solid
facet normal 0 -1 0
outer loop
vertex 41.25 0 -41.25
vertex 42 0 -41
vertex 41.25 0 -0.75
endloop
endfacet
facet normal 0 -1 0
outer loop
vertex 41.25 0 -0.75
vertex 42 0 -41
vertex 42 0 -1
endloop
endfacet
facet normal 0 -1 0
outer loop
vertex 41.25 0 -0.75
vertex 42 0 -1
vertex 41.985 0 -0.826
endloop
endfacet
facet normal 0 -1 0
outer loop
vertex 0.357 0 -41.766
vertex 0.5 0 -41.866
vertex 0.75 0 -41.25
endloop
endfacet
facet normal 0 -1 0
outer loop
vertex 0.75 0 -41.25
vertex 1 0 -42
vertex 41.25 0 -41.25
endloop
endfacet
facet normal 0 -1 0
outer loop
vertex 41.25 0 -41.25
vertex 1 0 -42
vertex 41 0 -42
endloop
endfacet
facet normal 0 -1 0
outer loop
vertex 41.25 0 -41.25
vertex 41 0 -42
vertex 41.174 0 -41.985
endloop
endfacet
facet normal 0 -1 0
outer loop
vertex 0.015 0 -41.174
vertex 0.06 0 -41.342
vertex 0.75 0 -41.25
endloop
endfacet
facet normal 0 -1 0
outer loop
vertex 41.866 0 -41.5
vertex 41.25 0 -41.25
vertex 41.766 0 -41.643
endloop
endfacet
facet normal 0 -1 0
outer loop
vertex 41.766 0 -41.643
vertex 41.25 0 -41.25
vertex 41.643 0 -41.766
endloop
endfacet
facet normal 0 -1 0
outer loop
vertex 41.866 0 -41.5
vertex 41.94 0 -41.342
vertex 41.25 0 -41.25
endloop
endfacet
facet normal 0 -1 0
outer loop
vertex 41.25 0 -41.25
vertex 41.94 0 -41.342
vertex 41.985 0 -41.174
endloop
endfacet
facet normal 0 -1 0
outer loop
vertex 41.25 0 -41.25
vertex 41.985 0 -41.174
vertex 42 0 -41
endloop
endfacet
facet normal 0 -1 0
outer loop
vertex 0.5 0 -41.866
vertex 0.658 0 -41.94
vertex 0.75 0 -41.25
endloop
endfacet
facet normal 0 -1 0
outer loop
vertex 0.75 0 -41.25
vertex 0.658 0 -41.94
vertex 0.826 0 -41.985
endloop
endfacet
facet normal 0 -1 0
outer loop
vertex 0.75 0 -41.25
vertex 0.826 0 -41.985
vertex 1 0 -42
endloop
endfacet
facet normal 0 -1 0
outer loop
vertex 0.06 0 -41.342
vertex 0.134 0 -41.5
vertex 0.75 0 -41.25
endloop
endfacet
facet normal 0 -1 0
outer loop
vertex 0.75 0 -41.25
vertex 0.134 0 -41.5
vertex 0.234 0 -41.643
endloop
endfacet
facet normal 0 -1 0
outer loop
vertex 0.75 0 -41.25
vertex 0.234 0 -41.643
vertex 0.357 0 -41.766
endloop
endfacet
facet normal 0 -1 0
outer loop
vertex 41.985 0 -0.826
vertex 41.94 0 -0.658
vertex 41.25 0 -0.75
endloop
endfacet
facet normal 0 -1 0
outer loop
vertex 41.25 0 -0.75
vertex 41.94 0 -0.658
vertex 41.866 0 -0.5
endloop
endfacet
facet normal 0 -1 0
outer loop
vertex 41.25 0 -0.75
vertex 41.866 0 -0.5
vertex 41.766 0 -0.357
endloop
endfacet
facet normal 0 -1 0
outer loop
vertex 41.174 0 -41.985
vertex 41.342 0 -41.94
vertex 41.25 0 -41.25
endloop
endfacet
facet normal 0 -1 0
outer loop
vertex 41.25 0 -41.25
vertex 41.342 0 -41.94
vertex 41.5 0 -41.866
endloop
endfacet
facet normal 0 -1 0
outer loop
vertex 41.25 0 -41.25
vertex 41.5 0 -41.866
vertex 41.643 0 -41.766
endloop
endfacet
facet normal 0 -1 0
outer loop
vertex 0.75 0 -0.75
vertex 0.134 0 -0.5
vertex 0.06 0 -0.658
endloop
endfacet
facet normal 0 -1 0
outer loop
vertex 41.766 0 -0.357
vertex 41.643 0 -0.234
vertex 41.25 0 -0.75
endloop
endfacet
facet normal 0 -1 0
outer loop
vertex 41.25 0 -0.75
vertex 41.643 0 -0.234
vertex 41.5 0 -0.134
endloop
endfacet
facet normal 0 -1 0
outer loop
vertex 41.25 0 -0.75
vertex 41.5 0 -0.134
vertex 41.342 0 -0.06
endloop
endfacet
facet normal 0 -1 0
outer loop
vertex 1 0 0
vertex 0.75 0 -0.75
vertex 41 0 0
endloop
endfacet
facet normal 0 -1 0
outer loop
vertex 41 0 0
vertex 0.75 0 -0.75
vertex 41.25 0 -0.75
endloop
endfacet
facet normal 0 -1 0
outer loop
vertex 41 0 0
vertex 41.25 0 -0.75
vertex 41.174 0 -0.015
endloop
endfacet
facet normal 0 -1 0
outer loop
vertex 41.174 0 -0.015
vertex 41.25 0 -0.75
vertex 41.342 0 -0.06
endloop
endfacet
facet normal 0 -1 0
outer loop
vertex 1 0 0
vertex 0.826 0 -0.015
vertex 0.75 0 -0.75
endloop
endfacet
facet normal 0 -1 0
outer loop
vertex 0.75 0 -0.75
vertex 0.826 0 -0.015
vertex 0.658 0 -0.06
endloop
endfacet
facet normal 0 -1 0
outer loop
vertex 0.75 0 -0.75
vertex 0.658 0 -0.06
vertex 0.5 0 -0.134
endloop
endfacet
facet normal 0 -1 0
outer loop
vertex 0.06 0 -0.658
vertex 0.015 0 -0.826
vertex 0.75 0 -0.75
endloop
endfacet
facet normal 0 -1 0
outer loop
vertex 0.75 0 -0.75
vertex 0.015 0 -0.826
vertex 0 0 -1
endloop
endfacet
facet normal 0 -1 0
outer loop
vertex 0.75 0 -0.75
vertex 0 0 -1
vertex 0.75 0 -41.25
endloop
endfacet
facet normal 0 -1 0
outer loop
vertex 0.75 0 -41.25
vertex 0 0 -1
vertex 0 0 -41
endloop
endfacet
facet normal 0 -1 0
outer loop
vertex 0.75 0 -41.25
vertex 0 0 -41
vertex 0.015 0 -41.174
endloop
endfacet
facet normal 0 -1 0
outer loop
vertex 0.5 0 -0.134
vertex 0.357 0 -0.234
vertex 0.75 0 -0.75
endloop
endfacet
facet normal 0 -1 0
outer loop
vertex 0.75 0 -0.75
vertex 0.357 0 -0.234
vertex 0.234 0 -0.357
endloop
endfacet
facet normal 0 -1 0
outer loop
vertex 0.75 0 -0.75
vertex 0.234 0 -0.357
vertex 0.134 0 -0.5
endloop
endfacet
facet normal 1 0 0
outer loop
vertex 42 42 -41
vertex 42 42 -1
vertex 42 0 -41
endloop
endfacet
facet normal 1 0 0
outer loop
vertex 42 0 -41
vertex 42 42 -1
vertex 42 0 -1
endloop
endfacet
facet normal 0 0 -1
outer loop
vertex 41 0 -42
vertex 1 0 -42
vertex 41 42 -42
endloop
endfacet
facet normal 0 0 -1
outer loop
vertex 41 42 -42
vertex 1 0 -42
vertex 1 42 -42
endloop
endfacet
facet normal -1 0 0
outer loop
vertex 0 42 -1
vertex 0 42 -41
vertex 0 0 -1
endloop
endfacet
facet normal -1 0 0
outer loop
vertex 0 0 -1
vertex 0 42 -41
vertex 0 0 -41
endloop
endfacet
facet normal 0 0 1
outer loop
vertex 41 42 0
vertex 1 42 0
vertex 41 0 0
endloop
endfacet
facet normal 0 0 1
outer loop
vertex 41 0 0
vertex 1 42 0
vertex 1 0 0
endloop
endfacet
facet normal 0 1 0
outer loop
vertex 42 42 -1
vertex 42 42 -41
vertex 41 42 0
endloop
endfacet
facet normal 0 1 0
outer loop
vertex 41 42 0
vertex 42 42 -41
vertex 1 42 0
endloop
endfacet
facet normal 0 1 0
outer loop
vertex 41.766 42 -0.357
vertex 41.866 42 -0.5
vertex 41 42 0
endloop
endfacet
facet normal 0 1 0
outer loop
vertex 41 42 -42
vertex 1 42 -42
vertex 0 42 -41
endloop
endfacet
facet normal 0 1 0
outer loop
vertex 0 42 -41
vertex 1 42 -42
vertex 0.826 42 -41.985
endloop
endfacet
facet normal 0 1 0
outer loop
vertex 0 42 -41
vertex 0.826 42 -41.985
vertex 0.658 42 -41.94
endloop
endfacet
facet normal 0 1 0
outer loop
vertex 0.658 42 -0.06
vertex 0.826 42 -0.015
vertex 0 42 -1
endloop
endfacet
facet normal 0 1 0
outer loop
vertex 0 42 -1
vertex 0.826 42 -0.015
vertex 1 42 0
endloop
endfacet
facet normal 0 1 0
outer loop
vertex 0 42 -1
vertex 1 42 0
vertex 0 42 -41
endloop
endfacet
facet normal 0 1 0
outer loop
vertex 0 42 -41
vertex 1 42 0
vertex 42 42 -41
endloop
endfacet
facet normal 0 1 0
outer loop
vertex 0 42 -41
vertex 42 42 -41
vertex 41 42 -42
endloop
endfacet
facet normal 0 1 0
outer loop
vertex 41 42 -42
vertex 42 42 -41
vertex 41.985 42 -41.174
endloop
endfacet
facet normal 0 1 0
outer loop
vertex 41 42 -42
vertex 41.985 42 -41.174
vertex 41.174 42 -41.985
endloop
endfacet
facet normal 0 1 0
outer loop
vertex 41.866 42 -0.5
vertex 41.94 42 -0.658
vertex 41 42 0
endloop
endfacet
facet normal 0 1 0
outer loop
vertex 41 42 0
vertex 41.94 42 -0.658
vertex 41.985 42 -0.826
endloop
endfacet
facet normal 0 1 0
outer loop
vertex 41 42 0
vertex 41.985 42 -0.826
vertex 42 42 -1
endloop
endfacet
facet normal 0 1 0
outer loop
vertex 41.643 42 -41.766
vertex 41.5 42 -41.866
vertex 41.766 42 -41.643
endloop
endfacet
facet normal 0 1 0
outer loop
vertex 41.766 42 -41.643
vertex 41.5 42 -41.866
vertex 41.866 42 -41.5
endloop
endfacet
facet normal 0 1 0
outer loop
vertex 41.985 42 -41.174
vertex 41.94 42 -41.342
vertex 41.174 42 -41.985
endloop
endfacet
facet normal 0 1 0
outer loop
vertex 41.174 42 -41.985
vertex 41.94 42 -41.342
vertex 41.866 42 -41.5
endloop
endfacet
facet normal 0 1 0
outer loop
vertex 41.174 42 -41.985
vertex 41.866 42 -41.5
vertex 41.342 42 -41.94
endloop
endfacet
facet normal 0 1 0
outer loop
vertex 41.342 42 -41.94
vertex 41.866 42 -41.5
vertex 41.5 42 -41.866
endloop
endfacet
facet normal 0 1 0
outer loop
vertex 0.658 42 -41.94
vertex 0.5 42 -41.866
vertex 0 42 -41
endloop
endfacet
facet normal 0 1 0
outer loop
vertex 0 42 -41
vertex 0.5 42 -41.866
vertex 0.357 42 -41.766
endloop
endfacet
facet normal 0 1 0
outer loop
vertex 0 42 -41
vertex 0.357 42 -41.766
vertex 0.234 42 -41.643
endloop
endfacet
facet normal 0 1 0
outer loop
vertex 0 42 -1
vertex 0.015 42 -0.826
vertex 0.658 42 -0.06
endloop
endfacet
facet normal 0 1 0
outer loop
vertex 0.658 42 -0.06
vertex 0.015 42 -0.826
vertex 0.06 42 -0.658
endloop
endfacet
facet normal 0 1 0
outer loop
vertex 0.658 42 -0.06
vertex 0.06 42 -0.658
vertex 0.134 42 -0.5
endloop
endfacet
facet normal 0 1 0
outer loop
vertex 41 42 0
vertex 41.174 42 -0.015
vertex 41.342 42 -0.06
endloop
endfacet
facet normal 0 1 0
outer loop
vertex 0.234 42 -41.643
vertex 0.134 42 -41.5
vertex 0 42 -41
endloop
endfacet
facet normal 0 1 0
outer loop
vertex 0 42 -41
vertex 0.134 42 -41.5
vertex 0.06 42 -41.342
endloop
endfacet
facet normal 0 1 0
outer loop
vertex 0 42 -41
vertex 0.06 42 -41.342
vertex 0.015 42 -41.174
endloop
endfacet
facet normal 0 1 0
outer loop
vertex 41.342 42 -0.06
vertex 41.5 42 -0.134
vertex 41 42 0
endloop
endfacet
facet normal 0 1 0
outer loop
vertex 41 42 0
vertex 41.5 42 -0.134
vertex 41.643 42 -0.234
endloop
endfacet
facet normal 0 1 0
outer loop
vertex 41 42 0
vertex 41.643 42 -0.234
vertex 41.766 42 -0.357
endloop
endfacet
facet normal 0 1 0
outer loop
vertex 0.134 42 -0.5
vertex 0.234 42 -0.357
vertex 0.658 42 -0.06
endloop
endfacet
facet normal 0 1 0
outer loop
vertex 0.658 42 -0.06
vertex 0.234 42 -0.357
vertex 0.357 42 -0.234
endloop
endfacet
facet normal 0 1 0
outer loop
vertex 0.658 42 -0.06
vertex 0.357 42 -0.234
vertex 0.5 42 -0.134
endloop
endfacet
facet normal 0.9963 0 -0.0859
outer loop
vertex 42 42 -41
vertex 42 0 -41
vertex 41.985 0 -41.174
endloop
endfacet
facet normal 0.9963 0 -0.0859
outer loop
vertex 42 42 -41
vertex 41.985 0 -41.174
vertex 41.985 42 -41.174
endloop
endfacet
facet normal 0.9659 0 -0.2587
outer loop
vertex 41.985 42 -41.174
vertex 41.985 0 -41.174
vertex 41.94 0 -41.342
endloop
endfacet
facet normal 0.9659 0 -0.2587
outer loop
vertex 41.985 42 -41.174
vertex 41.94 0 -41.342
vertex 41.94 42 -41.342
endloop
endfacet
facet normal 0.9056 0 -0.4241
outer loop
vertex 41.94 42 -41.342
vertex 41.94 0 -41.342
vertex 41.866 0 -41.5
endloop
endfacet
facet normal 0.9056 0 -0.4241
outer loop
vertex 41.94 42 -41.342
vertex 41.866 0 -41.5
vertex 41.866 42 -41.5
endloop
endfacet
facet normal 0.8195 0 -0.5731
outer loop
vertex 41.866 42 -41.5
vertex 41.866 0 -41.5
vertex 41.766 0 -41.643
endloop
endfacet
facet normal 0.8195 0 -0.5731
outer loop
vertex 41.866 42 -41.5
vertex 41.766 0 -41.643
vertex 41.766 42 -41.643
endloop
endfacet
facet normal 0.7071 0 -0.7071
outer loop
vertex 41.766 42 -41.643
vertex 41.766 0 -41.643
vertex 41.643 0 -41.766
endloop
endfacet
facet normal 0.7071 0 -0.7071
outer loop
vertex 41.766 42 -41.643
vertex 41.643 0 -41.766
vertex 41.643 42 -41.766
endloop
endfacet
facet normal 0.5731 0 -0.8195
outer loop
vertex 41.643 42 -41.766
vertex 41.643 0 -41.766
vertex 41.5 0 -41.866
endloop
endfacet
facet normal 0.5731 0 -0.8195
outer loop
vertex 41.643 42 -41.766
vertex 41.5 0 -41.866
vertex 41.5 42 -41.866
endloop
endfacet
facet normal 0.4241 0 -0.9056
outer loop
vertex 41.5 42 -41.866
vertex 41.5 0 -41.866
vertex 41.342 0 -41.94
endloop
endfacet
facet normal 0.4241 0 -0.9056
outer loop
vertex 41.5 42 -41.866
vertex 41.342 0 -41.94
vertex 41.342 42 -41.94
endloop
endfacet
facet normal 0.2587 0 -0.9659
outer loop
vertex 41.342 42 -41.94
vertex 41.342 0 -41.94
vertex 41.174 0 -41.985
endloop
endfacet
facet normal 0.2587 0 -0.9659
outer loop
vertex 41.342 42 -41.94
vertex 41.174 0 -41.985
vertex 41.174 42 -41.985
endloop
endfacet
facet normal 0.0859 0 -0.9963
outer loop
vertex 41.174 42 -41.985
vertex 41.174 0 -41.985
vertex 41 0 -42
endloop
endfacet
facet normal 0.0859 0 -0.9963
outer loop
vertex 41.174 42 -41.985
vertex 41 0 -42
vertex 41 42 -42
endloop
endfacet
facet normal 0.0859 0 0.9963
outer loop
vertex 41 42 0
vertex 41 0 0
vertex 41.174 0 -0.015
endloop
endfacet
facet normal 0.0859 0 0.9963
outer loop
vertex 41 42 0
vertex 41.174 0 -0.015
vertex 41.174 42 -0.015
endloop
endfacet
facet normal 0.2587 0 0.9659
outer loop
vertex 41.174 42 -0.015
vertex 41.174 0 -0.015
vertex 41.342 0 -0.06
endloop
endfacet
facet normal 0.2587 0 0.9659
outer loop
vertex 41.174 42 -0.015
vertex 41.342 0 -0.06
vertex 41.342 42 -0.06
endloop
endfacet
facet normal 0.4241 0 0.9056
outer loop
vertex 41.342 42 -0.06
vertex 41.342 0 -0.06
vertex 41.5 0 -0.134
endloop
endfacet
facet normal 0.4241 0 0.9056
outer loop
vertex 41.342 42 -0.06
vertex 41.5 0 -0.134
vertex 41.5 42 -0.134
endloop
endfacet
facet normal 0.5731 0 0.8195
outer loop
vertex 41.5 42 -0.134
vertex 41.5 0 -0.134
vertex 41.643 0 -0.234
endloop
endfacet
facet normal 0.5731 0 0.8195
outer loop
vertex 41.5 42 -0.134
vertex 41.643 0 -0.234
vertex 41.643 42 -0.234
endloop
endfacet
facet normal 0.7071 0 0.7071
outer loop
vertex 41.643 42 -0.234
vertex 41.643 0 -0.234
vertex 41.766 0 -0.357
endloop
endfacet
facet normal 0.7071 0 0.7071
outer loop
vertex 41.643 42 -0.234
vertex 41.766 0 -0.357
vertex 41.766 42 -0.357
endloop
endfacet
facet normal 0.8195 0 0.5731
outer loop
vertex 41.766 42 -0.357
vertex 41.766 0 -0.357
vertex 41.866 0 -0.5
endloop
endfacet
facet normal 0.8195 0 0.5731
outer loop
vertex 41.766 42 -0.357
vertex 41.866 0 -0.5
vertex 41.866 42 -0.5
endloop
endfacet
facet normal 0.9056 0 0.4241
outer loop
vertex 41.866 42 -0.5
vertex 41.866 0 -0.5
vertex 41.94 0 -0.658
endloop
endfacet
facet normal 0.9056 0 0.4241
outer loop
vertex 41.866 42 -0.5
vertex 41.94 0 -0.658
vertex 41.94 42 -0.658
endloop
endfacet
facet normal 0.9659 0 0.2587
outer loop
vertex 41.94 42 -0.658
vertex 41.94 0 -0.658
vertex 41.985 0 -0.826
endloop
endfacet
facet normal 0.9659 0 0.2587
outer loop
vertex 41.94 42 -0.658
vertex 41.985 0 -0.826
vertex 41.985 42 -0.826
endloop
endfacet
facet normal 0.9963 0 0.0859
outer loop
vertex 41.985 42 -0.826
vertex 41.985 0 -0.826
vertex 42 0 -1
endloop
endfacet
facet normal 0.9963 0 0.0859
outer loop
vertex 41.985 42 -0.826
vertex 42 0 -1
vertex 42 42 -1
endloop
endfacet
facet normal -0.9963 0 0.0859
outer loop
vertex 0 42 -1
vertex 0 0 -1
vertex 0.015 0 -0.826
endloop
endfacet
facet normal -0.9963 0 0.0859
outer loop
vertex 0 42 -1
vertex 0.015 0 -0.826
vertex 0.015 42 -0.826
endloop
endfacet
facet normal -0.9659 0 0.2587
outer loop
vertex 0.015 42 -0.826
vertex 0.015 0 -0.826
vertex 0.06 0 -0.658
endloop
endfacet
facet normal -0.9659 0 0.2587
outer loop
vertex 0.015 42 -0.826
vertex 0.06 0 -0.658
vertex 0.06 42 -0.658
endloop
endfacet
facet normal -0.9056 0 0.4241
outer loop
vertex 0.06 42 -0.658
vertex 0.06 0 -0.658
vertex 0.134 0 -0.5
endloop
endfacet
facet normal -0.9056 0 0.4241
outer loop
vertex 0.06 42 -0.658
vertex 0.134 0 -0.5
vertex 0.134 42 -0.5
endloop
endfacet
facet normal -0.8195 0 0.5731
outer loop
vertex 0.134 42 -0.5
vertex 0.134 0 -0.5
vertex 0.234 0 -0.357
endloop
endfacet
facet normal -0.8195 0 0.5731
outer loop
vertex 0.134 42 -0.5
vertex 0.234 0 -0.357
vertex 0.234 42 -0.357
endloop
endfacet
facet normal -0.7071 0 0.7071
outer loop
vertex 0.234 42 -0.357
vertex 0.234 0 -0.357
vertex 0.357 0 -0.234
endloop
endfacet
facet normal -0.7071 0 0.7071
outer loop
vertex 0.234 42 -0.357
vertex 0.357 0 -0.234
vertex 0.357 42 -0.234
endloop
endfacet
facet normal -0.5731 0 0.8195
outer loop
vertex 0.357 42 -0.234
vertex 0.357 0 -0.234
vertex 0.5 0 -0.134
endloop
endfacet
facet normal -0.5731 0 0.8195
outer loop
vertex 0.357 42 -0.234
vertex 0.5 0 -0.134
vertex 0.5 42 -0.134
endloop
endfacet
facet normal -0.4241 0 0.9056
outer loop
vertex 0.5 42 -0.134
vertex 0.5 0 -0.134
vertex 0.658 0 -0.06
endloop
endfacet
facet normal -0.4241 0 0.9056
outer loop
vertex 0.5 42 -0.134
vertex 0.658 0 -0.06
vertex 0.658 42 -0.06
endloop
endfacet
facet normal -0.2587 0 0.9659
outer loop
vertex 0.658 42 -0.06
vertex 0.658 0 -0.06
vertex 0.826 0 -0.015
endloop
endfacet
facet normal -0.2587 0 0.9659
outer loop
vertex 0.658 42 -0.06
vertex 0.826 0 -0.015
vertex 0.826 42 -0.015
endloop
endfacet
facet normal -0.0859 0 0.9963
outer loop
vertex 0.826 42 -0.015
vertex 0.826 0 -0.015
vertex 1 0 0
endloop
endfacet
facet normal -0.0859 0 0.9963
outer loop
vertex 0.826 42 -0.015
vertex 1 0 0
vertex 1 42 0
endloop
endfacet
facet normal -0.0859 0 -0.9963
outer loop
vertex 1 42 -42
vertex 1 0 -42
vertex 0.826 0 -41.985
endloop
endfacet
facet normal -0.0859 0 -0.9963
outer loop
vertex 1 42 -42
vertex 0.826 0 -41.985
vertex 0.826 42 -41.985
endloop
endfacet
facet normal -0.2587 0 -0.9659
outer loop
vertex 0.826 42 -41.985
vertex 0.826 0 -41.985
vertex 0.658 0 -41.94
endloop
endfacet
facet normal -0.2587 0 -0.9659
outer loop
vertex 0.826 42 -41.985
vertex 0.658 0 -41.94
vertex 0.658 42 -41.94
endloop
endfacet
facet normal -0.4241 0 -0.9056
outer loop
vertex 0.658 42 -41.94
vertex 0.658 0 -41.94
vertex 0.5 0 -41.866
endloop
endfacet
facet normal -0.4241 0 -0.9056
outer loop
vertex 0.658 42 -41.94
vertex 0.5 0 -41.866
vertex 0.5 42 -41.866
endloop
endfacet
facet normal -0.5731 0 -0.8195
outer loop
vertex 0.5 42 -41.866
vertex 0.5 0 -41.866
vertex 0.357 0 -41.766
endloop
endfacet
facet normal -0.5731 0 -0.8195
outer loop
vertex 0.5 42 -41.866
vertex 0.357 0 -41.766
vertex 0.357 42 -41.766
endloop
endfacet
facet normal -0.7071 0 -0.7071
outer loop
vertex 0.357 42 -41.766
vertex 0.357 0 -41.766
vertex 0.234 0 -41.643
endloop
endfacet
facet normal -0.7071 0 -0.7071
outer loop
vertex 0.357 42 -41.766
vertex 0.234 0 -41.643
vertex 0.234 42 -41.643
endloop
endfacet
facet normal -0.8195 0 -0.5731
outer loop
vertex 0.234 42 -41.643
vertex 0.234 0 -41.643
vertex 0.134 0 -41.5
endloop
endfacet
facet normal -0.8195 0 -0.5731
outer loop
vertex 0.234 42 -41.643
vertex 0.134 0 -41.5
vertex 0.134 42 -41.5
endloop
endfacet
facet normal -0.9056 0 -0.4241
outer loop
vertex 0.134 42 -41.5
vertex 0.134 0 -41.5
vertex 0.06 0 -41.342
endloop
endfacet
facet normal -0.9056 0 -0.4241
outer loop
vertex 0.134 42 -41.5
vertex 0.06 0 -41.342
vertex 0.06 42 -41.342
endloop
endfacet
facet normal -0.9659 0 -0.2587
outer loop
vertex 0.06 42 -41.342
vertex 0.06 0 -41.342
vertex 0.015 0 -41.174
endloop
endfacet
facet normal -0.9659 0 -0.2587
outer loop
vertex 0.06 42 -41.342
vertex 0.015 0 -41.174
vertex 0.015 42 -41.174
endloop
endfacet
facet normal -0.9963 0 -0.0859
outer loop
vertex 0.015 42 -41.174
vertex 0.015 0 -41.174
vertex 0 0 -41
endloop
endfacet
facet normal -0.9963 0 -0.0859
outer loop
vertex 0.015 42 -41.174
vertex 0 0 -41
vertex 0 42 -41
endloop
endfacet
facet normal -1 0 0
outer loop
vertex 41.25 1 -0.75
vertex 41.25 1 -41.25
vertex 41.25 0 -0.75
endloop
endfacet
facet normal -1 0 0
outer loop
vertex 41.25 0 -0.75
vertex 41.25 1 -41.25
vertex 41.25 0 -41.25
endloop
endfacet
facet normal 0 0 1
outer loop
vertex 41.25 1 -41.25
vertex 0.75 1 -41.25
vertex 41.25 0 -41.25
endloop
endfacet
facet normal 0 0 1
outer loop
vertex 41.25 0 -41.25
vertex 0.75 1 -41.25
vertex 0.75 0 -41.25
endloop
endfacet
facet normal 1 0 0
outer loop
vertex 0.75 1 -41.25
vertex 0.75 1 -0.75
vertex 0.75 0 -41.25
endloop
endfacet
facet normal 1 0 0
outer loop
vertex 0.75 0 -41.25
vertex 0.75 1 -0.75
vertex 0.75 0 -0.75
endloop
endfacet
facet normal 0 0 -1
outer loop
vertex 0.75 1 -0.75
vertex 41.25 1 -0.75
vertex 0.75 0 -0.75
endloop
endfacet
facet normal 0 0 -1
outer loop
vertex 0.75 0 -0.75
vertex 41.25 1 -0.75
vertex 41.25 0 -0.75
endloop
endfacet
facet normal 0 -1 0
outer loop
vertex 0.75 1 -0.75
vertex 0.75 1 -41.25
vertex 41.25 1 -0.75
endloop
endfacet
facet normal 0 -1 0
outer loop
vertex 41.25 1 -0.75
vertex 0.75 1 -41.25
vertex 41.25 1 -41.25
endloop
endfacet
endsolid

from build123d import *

# Parameters (mm, degrees)
SKIZZE1_W                       = 42
SKIZZE1_H                       = 42
AUFSATZ_LINEAR_AUSTRAGEN1_DEPTH = 42
VERRUNDUNG1_R                   = 1
SKIZZE2_W                       = 40.5
SKIZZE2_H                       = 40.5
SCHNITT_LINEAR_AUSTRAGEN1_DEPTH = 1


with BuildPart() as part:
    # Skizze1 → Aufsatz-Linear austragen1 (new body)
    with BuildSketch(Plane(origin=(0, 0, 0), x_dir=(1, 0, 0), z_dir=(0, 1, 0))):
        with Locations((21, 21)):
            Rectangle(SKIZZE1_W, SKIZZE1_H)
    extrude(amount=AUFSATZ_LINEAR_AUSTRAGEN1_DEPTH)

    # Verrundung1
    verrundung1_edges = [part.edges().sort_by_distance(p)[0] for p in [
        (42, 21, 0),
        (0, 21, 0),
        (0, 21, -42),
        (42, 21, -42),
    ]]
    fillet(verrundung1_edges, radius=VERRUNDUNG1_R)

    # Skizze2 → Schnitt-Linear austragen1 (cut)
    with BuildSketch(Plane(origin=(0, 0, 0), x_dir=(1, 0, 0), z_dir=(0, 1, 0))):
        with Locations((21, 21)):
            Rectangle(SKIZZE2_W, SKIZZE2_H)
    extrude(amount=SCHNITT_LINEAR_AUSTRAGEN1_DEPTH, mode=Mode.SUBTRACT)


solid = part.part
